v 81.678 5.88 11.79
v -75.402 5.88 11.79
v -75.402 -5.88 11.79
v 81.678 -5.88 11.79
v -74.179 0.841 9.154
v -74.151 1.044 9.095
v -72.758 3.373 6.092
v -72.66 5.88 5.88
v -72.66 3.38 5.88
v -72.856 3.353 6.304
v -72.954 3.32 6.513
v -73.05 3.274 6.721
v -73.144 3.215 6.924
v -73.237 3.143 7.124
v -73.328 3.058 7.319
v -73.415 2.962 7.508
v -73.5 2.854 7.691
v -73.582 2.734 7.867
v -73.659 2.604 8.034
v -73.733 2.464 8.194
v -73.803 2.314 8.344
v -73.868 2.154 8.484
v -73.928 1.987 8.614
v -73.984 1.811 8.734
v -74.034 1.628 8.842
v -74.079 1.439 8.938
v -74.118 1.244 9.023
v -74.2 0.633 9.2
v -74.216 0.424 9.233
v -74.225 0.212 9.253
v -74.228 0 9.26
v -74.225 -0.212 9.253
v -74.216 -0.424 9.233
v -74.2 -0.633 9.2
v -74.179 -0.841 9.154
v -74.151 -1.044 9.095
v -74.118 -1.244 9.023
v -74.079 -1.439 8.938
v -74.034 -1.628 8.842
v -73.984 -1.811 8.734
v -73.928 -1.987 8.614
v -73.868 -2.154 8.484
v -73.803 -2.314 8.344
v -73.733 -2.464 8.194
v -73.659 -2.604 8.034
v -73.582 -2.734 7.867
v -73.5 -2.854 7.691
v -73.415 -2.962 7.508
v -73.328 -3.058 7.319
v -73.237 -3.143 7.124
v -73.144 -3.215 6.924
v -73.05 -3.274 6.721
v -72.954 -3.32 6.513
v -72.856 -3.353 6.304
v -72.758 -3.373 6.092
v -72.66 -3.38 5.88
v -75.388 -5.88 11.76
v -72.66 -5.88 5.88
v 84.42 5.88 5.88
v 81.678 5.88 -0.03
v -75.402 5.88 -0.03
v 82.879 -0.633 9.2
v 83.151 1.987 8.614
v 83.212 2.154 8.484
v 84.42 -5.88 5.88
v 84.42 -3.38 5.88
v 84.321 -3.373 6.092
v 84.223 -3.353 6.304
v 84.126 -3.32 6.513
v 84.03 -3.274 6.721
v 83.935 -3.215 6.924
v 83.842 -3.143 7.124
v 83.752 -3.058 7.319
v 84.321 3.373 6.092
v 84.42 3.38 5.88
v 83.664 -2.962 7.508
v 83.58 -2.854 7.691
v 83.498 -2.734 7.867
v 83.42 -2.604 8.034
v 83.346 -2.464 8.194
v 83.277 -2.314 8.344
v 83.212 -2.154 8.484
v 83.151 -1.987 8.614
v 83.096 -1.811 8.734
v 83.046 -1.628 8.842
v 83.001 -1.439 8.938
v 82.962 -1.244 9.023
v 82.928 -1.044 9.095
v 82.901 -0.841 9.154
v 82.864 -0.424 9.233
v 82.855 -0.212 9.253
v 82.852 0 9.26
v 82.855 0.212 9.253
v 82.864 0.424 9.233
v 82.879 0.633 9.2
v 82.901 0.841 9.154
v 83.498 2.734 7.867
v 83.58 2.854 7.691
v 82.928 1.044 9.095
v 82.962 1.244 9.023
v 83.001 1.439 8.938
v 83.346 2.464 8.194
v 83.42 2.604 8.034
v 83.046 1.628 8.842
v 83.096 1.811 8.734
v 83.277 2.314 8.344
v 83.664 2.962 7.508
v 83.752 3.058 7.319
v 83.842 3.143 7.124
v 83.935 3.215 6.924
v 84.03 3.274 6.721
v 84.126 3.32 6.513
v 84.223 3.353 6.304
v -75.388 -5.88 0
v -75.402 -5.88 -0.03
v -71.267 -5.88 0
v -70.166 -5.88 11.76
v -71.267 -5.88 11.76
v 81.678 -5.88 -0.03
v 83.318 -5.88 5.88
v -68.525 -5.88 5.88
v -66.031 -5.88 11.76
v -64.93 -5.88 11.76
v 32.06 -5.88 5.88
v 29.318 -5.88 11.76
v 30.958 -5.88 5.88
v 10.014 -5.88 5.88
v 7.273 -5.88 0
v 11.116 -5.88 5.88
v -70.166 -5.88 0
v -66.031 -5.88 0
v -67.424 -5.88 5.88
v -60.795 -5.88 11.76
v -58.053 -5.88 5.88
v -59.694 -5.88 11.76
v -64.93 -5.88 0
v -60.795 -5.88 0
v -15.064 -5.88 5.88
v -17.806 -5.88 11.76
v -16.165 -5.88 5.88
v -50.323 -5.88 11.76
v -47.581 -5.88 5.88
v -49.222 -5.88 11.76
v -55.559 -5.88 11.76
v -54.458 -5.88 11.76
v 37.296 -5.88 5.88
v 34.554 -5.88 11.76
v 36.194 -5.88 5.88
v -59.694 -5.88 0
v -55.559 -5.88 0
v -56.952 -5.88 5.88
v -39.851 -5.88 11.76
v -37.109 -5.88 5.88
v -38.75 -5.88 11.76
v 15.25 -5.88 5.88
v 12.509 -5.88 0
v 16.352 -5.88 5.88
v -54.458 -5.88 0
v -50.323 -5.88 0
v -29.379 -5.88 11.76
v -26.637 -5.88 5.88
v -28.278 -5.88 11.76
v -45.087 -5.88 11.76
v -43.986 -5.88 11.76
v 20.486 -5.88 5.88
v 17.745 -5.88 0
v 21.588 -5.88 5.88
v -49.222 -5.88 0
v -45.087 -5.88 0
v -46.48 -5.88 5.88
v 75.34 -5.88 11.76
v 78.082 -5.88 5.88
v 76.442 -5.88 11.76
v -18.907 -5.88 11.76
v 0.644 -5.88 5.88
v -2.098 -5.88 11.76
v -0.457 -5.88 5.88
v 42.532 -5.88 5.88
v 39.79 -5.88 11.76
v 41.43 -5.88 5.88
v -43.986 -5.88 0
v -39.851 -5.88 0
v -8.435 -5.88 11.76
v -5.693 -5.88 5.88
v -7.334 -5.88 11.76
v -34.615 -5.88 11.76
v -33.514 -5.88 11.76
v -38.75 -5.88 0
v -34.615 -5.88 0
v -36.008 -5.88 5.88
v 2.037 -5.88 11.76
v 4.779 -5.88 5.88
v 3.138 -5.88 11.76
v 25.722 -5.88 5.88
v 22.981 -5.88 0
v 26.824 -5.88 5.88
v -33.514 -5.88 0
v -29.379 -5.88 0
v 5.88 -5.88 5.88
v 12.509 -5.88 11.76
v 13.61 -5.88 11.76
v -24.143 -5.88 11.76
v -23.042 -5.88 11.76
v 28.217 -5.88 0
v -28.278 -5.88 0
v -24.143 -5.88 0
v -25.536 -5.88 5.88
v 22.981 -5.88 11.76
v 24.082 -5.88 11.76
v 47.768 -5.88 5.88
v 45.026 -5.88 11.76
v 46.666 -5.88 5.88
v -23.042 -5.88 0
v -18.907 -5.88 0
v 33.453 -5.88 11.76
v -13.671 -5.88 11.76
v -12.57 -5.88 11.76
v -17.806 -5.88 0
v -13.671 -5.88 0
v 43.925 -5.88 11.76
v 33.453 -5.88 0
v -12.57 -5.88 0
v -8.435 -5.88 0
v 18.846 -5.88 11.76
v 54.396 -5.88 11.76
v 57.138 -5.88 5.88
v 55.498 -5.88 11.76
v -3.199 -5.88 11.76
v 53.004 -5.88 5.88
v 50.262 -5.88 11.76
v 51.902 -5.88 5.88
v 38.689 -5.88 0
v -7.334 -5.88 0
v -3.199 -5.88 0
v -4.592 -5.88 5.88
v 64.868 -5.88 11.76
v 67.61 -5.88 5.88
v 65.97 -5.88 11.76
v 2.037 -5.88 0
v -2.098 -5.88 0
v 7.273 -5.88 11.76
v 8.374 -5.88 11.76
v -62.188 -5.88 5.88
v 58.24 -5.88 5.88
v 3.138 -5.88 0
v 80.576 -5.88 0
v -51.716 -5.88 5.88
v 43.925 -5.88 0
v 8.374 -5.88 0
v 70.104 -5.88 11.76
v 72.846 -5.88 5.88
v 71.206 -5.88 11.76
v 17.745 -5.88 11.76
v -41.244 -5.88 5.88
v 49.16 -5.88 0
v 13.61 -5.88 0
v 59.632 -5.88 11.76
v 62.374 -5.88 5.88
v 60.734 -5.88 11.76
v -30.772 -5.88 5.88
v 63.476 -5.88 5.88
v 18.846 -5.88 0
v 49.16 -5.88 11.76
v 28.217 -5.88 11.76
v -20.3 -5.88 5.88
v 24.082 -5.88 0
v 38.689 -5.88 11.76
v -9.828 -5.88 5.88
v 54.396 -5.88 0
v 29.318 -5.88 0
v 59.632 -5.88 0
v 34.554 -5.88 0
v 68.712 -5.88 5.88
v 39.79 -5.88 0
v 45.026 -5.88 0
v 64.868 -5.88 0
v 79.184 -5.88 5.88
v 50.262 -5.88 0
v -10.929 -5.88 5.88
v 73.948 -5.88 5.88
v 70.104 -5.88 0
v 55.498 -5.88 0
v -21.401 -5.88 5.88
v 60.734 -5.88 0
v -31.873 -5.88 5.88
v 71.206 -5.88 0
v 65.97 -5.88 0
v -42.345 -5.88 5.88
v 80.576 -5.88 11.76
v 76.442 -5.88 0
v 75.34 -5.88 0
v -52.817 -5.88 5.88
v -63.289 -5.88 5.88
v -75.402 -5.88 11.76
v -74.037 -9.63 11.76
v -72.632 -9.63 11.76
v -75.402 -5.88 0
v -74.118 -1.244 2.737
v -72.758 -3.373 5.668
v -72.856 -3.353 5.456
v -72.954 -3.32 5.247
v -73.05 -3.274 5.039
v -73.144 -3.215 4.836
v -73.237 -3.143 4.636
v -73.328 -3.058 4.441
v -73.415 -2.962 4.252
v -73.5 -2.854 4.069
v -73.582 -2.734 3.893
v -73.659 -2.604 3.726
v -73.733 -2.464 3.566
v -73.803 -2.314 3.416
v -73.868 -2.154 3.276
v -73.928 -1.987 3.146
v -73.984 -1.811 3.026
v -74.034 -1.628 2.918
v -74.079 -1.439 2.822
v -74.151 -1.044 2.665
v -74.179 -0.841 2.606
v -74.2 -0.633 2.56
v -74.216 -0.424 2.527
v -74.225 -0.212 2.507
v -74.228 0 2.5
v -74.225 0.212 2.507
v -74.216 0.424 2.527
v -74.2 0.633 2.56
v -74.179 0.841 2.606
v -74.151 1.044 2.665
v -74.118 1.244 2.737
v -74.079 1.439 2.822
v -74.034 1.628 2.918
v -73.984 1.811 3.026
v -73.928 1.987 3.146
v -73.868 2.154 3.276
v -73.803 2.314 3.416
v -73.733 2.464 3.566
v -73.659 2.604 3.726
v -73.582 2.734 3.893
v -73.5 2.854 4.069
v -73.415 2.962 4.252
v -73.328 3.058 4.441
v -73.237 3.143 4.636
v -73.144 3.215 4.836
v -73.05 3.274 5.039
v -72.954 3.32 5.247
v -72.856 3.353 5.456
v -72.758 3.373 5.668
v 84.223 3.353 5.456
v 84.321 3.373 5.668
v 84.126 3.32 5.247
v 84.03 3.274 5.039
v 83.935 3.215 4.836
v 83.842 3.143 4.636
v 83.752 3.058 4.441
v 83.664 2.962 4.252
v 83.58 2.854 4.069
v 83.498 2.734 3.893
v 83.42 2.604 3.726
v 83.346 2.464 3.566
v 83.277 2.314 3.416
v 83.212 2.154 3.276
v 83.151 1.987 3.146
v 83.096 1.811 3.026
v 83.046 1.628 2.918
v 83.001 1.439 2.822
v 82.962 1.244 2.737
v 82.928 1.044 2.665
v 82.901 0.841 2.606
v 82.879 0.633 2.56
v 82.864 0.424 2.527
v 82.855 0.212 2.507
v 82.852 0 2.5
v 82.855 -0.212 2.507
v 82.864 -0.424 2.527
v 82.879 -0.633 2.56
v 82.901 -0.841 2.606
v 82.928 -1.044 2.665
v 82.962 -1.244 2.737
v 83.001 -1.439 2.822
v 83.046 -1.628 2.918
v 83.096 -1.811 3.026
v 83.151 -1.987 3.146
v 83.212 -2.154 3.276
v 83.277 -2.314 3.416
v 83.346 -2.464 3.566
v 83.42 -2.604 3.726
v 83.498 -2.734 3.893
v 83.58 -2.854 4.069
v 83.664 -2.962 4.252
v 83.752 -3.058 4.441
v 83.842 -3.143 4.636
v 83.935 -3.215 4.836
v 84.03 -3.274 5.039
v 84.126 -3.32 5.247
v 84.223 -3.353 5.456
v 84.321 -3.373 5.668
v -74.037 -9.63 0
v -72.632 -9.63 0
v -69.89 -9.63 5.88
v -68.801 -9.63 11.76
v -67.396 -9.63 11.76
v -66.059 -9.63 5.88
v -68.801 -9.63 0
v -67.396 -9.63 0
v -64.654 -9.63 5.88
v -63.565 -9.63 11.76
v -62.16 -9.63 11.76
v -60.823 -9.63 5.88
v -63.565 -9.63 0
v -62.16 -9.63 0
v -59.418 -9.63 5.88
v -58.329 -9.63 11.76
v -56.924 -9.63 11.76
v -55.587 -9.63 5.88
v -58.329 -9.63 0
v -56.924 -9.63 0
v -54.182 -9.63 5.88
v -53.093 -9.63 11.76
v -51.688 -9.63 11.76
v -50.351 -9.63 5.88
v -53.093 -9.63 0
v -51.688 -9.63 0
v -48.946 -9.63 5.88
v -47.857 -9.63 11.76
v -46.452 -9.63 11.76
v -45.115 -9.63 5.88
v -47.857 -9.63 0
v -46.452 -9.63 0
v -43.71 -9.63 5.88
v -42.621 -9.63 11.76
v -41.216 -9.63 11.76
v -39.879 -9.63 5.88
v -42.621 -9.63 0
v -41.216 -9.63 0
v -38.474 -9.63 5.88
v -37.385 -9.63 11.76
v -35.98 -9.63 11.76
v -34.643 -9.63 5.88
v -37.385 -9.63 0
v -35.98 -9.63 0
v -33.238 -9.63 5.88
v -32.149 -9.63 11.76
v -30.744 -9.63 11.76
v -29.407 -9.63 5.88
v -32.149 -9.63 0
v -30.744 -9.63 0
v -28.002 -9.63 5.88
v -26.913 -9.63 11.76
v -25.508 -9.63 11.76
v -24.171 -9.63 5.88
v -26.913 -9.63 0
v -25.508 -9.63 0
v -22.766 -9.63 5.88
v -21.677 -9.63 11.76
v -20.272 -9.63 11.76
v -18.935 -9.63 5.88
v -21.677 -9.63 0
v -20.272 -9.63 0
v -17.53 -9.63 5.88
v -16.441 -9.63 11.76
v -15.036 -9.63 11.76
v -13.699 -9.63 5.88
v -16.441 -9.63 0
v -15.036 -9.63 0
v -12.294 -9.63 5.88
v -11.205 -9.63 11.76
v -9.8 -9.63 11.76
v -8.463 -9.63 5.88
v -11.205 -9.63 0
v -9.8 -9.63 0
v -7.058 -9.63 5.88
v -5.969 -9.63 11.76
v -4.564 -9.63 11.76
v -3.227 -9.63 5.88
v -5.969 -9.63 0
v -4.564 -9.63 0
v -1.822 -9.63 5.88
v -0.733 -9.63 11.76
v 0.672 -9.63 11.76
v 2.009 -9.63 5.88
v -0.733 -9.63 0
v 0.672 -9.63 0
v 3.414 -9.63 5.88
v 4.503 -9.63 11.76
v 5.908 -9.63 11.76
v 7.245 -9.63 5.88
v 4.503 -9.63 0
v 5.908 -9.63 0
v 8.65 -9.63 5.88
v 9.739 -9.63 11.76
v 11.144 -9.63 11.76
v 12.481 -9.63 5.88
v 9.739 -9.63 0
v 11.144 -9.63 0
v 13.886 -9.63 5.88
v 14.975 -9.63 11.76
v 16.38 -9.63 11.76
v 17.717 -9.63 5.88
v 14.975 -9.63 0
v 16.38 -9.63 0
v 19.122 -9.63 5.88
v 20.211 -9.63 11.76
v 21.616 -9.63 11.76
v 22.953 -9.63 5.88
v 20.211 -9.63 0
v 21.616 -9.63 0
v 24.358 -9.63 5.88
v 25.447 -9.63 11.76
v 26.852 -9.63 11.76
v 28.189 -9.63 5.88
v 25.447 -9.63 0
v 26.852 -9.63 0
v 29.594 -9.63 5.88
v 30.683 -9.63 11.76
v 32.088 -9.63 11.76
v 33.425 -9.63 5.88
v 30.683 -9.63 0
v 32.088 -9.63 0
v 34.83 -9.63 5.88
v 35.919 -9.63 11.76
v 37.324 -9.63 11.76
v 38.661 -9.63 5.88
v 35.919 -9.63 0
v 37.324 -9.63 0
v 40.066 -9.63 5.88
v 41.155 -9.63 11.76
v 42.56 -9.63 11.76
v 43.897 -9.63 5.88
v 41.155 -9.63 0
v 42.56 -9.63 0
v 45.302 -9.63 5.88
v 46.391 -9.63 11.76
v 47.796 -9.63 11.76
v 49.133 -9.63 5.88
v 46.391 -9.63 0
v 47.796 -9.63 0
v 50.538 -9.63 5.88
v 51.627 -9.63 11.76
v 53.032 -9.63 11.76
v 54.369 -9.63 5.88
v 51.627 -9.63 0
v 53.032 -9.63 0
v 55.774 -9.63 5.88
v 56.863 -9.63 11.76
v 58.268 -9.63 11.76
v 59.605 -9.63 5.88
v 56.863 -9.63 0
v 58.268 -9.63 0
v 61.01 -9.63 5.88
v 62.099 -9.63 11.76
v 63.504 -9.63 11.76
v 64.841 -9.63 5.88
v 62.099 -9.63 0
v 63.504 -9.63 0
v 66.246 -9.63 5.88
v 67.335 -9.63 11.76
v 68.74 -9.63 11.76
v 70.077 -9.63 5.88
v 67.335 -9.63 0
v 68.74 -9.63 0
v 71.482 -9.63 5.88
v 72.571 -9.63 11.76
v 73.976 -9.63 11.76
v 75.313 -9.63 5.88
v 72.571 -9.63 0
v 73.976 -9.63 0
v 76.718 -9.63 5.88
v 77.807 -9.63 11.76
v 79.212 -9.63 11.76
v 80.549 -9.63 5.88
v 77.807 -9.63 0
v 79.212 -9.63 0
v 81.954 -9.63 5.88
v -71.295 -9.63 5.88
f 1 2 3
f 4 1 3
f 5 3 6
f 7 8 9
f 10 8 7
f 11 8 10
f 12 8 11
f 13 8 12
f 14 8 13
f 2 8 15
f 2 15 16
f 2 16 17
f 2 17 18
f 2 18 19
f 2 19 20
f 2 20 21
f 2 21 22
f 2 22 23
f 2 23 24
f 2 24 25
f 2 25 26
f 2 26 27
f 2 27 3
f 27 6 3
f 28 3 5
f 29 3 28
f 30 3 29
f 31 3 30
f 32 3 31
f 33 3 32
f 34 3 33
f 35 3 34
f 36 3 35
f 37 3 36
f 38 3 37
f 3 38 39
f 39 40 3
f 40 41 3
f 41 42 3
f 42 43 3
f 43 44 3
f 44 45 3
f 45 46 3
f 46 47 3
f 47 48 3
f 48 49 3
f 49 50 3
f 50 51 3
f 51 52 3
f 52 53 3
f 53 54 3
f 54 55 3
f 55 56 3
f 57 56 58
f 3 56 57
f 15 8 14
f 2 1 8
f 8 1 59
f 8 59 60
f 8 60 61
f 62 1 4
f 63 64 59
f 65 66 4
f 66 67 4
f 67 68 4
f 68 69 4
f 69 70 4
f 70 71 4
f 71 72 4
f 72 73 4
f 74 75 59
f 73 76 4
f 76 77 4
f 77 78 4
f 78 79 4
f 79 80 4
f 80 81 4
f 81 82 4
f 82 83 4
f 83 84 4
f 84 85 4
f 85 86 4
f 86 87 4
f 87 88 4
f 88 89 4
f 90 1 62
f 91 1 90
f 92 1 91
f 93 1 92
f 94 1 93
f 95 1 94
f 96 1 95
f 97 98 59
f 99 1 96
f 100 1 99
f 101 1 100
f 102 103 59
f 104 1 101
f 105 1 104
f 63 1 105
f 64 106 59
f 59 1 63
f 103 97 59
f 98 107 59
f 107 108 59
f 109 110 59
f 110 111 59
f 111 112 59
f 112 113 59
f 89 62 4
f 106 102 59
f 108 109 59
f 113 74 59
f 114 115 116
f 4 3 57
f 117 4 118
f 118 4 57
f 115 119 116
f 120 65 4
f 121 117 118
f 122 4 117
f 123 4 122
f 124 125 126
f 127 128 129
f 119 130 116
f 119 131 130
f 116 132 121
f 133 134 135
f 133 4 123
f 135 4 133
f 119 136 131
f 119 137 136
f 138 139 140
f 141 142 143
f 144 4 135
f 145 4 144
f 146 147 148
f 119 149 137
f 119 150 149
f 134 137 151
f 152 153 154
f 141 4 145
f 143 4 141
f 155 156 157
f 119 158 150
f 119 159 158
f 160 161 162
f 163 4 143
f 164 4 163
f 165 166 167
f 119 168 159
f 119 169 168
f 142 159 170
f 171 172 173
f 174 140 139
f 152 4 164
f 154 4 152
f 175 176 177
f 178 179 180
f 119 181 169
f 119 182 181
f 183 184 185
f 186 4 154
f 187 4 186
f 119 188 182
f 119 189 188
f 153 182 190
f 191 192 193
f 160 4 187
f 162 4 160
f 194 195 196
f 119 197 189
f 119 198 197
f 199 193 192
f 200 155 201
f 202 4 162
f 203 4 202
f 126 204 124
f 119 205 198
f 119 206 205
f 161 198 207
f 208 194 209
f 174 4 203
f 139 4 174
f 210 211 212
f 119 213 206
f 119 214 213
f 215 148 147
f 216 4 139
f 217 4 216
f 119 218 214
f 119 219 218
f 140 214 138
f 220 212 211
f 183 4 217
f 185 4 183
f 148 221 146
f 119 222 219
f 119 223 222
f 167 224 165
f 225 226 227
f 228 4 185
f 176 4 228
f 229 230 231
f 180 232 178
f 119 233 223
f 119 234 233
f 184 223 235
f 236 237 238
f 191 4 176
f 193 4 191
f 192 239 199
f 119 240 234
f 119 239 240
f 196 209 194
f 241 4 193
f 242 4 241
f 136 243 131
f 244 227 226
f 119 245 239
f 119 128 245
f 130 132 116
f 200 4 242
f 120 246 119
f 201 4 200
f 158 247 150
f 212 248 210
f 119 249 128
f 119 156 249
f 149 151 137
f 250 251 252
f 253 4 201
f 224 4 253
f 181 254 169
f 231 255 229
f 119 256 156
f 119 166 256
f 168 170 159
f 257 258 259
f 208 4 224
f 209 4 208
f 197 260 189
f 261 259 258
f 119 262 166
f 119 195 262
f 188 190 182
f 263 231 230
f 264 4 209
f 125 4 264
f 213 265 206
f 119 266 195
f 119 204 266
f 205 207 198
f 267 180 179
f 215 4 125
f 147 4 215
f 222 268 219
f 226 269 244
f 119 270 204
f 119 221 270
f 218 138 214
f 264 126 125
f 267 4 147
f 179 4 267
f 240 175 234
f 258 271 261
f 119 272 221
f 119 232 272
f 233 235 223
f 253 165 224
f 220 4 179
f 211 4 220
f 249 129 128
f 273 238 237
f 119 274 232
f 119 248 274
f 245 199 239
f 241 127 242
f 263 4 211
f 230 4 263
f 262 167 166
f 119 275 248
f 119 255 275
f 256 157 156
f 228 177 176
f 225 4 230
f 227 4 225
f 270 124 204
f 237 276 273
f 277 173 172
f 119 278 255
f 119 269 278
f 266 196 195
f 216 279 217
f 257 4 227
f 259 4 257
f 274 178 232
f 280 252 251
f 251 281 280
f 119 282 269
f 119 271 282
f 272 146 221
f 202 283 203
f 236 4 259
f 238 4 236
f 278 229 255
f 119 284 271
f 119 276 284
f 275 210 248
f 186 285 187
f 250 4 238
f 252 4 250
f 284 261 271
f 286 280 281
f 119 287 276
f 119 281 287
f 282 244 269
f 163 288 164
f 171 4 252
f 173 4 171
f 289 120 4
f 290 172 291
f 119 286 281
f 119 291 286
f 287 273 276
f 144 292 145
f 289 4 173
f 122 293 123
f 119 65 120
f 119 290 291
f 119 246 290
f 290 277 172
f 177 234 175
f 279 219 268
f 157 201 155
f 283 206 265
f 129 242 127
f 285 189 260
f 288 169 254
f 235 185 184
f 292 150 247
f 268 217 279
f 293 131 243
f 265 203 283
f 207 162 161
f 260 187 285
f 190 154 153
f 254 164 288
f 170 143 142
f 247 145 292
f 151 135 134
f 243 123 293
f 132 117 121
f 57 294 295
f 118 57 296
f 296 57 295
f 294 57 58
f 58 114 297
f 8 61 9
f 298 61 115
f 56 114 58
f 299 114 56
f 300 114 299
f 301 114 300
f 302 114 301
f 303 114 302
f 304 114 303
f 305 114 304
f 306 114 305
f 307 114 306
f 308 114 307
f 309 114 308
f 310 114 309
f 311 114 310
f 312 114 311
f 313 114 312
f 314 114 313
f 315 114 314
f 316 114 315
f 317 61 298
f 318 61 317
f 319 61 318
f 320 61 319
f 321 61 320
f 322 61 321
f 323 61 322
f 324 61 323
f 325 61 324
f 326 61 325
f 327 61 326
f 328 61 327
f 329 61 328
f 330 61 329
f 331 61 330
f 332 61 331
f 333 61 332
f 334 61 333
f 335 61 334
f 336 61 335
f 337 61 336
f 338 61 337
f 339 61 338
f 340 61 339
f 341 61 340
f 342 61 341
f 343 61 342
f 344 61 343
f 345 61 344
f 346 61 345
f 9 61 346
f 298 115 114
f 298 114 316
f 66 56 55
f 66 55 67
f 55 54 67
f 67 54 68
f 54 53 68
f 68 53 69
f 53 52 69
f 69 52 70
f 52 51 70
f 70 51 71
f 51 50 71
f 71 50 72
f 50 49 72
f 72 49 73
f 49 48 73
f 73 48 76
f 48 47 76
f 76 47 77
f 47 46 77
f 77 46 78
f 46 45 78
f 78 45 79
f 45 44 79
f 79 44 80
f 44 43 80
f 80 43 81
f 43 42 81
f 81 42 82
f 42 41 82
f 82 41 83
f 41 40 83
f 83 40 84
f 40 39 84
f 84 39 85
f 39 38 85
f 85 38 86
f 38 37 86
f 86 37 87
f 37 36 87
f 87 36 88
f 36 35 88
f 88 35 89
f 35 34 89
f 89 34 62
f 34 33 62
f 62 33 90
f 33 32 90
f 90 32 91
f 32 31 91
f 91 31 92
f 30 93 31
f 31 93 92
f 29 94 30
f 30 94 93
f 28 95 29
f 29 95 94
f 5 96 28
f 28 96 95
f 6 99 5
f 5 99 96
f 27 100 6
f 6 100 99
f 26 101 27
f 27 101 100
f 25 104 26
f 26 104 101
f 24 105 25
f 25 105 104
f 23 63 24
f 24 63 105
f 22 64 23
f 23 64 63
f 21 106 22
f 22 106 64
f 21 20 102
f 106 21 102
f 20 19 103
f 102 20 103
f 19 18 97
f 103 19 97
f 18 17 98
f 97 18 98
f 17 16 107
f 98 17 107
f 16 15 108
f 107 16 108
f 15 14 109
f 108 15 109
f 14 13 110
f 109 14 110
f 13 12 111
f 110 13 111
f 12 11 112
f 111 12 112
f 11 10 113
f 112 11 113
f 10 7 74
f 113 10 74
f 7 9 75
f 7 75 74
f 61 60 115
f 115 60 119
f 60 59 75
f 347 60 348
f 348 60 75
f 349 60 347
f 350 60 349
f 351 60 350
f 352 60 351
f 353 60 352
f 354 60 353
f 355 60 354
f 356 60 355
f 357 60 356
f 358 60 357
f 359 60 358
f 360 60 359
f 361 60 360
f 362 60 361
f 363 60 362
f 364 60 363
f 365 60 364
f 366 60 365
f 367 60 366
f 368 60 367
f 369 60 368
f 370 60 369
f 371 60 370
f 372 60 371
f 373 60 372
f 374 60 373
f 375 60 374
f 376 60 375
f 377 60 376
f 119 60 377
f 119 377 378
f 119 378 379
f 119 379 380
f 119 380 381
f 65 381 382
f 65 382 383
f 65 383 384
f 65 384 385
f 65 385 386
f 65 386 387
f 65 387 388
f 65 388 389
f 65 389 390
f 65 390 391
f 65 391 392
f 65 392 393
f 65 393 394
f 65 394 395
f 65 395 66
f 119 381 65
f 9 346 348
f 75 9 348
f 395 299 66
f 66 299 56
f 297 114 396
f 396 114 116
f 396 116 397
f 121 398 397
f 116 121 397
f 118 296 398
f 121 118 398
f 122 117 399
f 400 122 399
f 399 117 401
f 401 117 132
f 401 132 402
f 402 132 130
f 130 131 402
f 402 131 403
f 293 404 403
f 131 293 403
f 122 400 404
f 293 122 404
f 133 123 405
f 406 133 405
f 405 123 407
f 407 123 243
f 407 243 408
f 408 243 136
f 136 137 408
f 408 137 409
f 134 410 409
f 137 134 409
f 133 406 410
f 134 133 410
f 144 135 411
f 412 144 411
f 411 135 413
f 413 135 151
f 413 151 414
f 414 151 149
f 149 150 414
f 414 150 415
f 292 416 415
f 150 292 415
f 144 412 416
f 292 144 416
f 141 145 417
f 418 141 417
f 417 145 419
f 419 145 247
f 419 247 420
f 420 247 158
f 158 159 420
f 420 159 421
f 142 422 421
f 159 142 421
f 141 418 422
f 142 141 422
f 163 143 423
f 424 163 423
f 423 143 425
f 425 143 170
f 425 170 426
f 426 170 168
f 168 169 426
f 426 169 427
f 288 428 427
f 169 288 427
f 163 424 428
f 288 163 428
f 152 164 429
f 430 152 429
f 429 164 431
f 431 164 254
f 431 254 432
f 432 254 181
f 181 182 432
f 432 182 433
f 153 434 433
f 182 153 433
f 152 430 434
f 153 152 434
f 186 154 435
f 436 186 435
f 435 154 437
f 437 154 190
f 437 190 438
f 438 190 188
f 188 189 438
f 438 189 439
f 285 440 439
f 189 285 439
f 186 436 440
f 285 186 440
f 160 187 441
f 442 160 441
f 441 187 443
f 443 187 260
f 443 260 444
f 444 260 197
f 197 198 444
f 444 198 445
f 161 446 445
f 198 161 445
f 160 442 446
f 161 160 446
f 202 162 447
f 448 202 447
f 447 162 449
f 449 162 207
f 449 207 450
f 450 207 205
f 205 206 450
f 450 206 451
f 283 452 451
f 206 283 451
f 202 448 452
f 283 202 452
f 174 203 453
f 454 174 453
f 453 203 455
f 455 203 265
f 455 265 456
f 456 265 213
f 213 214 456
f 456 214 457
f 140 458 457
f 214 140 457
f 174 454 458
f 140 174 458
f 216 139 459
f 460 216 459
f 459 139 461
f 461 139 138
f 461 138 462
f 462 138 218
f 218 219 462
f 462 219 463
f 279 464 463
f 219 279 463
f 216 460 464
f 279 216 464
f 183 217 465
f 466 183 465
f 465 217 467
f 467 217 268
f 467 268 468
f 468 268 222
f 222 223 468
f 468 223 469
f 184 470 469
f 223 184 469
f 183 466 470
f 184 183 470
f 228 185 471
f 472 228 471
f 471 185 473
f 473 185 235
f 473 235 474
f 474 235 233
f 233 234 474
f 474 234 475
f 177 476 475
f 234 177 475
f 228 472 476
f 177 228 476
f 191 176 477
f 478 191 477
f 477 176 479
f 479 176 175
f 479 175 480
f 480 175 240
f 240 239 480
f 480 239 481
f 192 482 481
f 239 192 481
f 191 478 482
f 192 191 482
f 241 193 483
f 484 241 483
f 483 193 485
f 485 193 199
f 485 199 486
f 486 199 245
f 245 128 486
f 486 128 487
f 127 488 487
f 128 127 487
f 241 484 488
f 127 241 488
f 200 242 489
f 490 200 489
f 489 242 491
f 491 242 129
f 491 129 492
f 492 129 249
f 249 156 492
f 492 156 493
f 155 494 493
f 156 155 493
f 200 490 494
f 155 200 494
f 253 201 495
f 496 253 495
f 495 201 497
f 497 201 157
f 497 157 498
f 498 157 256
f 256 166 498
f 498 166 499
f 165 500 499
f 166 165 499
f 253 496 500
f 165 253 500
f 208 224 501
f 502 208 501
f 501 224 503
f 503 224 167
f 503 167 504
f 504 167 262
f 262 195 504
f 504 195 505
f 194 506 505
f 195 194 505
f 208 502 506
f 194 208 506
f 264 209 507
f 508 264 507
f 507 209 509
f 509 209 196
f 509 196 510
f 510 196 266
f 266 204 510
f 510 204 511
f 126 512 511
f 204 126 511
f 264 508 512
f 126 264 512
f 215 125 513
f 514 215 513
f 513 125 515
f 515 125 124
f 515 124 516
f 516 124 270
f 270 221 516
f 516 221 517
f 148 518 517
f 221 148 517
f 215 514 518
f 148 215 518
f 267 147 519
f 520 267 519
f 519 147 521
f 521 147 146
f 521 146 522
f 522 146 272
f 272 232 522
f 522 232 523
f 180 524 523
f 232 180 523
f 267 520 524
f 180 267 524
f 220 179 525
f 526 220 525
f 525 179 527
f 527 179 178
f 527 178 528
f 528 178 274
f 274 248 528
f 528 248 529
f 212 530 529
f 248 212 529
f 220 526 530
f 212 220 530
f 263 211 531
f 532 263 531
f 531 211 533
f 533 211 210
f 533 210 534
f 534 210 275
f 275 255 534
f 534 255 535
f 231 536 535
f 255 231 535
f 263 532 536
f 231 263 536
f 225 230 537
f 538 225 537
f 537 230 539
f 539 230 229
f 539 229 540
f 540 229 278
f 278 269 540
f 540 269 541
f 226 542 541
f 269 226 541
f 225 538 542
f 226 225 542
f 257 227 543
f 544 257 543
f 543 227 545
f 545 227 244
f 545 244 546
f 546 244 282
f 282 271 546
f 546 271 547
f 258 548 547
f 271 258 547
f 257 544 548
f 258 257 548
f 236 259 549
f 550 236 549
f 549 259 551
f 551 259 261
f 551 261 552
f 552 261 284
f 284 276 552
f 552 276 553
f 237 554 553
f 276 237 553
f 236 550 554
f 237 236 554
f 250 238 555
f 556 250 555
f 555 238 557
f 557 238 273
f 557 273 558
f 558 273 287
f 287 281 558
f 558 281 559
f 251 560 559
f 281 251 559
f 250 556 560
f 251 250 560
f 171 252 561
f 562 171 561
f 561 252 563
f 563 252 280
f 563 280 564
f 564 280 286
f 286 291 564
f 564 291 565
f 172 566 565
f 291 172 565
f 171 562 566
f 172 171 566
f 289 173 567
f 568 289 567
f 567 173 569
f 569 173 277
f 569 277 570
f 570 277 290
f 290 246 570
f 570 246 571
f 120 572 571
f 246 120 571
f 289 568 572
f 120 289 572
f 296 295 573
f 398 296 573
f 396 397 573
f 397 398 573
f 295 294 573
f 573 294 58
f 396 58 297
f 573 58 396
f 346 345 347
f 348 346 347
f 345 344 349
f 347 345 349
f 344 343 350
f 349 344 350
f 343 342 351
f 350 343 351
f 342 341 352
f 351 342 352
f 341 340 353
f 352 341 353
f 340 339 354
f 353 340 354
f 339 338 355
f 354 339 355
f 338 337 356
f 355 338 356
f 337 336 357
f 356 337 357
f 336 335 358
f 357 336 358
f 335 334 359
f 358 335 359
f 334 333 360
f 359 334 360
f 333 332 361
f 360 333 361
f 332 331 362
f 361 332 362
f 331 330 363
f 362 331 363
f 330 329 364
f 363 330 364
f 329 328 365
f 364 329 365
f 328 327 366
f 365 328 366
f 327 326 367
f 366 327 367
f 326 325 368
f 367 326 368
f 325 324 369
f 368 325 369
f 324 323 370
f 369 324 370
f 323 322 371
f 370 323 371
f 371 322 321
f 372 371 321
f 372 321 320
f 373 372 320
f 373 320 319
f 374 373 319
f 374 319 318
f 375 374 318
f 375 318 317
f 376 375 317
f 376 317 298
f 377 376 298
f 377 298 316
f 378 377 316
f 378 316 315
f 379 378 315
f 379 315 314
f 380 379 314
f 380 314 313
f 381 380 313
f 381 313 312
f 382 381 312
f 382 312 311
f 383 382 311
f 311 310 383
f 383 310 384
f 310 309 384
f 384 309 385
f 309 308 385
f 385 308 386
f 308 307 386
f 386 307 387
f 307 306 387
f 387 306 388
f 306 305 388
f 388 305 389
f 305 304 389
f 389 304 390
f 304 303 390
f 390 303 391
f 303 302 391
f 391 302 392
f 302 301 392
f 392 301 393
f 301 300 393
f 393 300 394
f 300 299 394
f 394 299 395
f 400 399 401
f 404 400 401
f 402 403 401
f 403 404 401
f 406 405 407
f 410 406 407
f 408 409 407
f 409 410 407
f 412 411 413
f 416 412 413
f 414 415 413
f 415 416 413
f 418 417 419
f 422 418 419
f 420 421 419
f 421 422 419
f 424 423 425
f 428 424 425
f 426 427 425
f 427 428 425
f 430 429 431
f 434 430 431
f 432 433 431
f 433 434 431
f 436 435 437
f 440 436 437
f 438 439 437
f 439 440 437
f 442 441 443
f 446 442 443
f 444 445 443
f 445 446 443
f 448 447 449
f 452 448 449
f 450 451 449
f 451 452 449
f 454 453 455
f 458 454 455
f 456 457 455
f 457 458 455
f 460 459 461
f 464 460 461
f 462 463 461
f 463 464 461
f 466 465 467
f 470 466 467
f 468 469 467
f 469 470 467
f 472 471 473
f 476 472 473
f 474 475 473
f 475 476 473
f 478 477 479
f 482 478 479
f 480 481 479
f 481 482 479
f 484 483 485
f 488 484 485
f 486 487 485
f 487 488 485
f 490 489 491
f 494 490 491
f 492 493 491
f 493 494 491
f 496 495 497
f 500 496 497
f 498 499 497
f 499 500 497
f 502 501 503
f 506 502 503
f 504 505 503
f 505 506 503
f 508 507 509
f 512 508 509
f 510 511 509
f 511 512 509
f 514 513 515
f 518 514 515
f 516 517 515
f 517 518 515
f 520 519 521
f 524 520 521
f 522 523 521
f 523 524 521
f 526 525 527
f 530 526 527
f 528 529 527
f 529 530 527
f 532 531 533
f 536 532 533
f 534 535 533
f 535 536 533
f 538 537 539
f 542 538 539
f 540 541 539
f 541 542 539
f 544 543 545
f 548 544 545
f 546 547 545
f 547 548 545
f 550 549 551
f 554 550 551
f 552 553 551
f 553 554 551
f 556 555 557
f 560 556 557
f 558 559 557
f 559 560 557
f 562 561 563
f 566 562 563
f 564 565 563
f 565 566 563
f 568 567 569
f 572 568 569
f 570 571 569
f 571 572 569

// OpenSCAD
// Parametric Modular Rack Mark "Ckaos" Moissette
//Based on the work of MattMoses and Fdavies :
//http://forums.reprap.org/read.php?1,51452,52099#msg-52099
//and Forrest Higgs:
// http://technocraticanarchist.blogspot.com/2010/01/high-speed-alternative-to-belts.html
//It is licensed under the Creative Commons - GNU GPL license.
// © 2011 by Mark "Ckaos" Moissette
//more info at :www.kaosat.net and
//http://www.thingiverse.com/thing:6011



pi=3.1415926535897932384626433832795;
innerRadius=6.76/2;//shaft radius, in mm
borders=2.5;//how thick should the borders around the central "shaft" be, in mm
diametralPitch=12;
numberOfTeeth=30;
pressureAngle=20*pi/180;
centerAngle=25;//angle at center of teeth


//example usage
rack(innerRadius,borders,diametralPitch,numberOfTeeth,pressureAngle,centerAngle);

//demo_gear([30,30,30],diametralPitch);



module rack(innerRadius,borders,P,N,PA,CA)
{
	// P = diametral pitch
	// N = number of teeth
	// PA = pressure angle in radians
	// x, y = linear offset distances
	a = 1/P; // addendum (also known as "module")
	d = 1.25/P; // dedendum (this is set by a standard)
	multiplier=20;//20
	height=(d+a)*multiplier;
	
	
	// find the tangent of pressure angle once
	tanPA = tan(PA*(180/pi));
	// length of bottom and top horizontal segments of tooth profile
	botL = (pi/P/2 - 2*d*tanPA)*multiplier;
	topL =( pi/P/2 - 2*a*tanPA)*multiplier;

	slantLng=tanPA*height;
	realBase=2*slantLng+topL;
	
	
	offset=topL+botL+2*slantLng;
	length=(realBase+botL)*N;

	supportSize=(innerRadius+borders)*2;

	//calculate tooth params
	basesegmentL=realBase/2;
	basesegmentW=supportSize/2;

	topsegmentL=topL/2;
	topsegmentW=supportSize/2;

	baseoffsetY=tan(CA)*basesegmentW;
	topoffsetY=tan(CA)*topsegmentW;
	
	//calculate support params

	totalSupportLength=(N)*(offset);
	supportL=totalSupportLength/2;
	supportW=supportSize/1.99;
	
	echo("Total length",totalSupportLength+baseoffsetY);
	echo("Total height",supportSize);

	
	rotate([90,90,0])
	{
	translate([-supportSize/2,supportSize/2,0])
	{
	union()
	{
		difference()
		{
			support(supportL,supportW,supportSize,baseoffsetY);
			rotate([90,90,0]) 
			{cylinder(h=length+10,r=innerRadius,center=true,$fn=100);}
		}

	
		for (i = [0:N-1]) 
		{
			translate([0,i*offset-length/2+realBase/2,supportSize/2+height/2]) 
			{	
				
				tooth(basesegmentL,basesegmentW,topsegmentL,topsegmentW,height,baseoffsetY,topoffsetY);
				
			}
		}
	}
	
	}
	}
}

module support(supportL,supportW,height,offsetY)
{
	 tooth(supportL,supportW,supportL,supportW,height,offsetY,offsetY);
}



module tooth(basesegmentL,basesegmentW,topsegmentL,topsegmentW,height,baseoffsetY,topoffsetY)//top : width*length, same for base
{
	
	////////////////
	basePT1=[
	-basesegmentW,
	basesegmentL-baseoffsetY,
	-height/2];

	basePT2=[
	0,
	basesegmentL,
	-height/2];

	basePT3=[
	basesegmentW,
	basesegmentL-baseoffsetY,
	-height/2];

	basePT4=[
	basesegmentW,
	basesegmentL-(baseoffsetY+basesegmentL*2),
	-height/2];
	
	basePT5=[
	0,
	-basesegmentL,
	-height/2];

	basePT6=[
	-basesegmentW,
	basesegmentL-(baseoffsetY+basesegmentL*2),
	-height/2];
	//////////////////////////
	topPT1=[
	-topsegmentW,
	topsegmentL-topoffsetY,
	height/2];

	topPT2=[
	0,
	topsegmentL,
	height/2];

	topPT3=[
	topsegmentW,
	topsegmentL-topoffsetY,
	height/2];

	topPT4=[
	topsegmentW,
	topsegmentL-(topoffsetY+topsegmentL*2),
	height/2];
	
	topPT5=[
	0,
	-topsegmentL,
	height/2];

	topPT6=[
	-topsegmentW,
	topsegmentL-(topoffsetY+topsegmentL*2),
	height/2];
	//////////////////////////

	//////////////////////////

	polyhedron(
	points=[
		basePT1,
		basePT2,
		basePT3,
		basePT4,
		basePT5,
		basePT6,
		topPT1,
		topPT2,
		topPT3,
		topPT4,
		topPT5,
		topPT6],
	triangles=[
	//base
	[5,1,0],
	[4,1,5],
	[4,2,1],
	[3,2,4],	

	//front
	[1,6,0],
	[7,6,1],
	[2,7,1],
	[8,7,2],
	//back
	[11,10,5],
	[5,10,4],
	[10,9,4],
	[4,9,3],	
	//side 1
	[0,11,5],
	[6,11,0],
	//side 2
	[3,8,2],
	[9,8,3],
	//top
	[9,10,8],
	[10,7,8],
	[11,7,10],
	[6,7,11],
	]
	);
}

module demo_gear(position,diametralPitch)
{
	wheelSize=12;
rotate([0,90,180])
translate(position)

{
gear (
	number_of_teeth=8,
	circular_pitch=300, 
	pressure_angle=19.34,
	gear_thickness=wheelSize/2,
	rim_thickness=wheelSize/2,
	hub_thickness=0,
	bore_diameter=2,
	backlash=0,twist=centerAngle,involute_facets=15);

translate([0,0,wheelSize/2])
rotate([0,0,-centerAngle])
gear (
	number_of_teeth=8,
	circular_pitch=300, 
	pressure_angle=19.34,
	gear_thickness=wheelSize/2,
	rim_thickness=wheelSize/2,
	hub_thickness=0,
	bore_diameter=2,
	backlash=0,twist=-centerAngle,involute_facets=15);

}

}
